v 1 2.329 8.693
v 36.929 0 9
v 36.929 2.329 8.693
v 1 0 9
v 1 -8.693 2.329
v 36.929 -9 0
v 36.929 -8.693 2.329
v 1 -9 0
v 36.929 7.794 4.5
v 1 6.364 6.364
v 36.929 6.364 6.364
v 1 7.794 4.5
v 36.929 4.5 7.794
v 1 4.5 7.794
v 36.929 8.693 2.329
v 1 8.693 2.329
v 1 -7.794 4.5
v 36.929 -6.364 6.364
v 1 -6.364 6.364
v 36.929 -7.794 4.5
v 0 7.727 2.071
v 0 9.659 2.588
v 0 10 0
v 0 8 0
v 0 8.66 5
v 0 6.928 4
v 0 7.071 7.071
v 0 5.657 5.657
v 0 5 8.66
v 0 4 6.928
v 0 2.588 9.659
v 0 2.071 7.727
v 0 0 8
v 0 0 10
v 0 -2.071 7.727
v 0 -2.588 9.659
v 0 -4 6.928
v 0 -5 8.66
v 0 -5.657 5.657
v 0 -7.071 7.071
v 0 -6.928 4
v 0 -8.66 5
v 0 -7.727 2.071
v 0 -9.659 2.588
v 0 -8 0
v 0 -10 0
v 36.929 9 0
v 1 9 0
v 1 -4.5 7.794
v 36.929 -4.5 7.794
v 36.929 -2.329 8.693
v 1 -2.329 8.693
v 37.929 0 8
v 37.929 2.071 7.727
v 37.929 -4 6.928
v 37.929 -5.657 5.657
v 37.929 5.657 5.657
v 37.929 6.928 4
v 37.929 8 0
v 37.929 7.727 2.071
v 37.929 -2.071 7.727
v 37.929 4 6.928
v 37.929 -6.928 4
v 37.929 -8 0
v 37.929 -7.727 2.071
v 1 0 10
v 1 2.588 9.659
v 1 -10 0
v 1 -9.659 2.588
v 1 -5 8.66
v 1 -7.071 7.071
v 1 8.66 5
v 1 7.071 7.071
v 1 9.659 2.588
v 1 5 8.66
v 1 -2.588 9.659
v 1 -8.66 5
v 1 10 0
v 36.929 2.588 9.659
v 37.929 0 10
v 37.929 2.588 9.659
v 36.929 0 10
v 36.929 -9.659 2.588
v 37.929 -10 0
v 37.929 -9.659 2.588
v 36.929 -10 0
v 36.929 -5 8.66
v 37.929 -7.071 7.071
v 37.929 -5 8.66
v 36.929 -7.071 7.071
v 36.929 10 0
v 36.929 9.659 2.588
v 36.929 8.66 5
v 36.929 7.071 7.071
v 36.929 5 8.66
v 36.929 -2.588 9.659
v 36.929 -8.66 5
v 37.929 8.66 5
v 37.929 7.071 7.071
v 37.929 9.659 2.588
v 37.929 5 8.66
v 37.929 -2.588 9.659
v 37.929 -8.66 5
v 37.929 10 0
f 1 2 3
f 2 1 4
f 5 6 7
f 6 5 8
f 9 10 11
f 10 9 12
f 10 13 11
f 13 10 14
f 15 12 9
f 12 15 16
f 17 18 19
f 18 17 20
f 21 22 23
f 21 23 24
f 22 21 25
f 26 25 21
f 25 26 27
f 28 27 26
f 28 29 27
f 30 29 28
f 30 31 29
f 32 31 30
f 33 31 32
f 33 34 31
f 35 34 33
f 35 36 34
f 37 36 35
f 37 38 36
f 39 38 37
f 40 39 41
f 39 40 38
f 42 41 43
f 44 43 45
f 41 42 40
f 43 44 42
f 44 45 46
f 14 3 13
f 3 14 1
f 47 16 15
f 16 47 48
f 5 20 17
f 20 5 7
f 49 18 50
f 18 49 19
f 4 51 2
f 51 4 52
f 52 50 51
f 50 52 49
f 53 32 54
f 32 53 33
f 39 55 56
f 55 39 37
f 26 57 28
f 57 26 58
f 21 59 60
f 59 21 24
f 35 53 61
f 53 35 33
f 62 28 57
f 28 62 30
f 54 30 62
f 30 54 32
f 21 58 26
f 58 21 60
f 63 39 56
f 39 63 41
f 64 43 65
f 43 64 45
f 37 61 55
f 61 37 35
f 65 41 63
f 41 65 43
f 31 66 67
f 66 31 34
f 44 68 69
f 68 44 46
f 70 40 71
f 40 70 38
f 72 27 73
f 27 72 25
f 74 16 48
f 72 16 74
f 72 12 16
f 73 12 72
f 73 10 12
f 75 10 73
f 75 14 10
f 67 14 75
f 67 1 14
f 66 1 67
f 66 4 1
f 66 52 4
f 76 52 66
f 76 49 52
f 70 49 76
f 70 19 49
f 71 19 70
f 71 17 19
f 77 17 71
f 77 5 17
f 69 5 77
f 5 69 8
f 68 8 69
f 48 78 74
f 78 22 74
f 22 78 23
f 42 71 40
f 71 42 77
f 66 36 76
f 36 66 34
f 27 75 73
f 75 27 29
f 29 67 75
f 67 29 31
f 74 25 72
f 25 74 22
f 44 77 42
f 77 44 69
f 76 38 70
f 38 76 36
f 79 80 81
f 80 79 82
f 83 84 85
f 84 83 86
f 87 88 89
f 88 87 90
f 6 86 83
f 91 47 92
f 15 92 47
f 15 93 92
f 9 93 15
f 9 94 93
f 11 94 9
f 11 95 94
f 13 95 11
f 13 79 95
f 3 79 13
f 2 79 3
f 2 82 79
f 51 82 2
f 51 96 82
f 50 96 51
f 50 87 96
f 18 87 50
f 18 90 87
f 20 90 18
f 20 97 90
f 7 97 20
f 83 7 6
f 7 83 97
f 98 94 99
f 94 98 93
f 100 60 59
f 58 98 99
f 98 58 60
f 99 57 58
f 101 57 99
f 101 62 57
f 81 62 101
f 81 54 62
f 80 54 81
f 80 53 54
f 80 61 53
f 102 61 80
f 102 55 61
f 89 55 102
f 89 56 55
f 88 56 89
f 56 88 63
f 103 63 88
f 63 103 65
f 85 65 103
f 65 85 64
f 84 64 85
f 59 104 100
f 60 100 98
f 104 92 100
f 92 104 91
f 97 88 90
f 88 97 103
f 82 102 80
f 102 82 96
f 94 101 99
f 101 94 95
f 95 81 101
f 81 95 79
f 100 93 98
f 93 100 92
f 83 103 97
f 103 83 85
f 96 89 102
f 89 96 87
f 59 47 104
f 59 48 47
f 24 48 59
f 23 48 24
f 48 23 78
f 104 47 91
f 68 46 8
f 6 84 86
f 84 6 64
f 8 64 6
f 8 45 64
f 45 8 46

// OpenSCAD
// file: ../build_environments.scad
// build_environments.scad: modules to build level sections
//

module pool(diameter=10.0, wall_height=2.0, step_width=3.0, connections=[])
{
    difference() {
        union() {
        difference() {
            cylinder(h=0.5,r1=diameter+step_width,r2=diameter+step_width,$fn=48);
            translate([0,0,-0.1])
                cylinder(h=0.7,r1=diameter,r2=diameter,$fn=48);
        }
        difference() {
            cylinder(h=wall_height,r1=diameter+step_width+1.0,r2=diameter+step_width+1.0,$fn=48);
            translate([0,0,-0.1])
                cylinder(h=wall_height+0.2,r1=diameter+step_width,r2=diameter+step_width,$fn=48);
        }
        }
    
        for (c = connections)
        {
            rotate([0,90,0]) {
                angle = atan2(c[1],c[0]);
                rotate([-angle,0,0]) {
                    cylinder(h=diameter+5.0,r1=c[2],r2=c[2],$fn=48);
                }
            }
        }
    }
}

module straight(length=10.0, width=2.0, dy1=0.0, dy2=0.0, dz=0.0)
{
    dims = [0, 0, 0, 0, 0, (dz/length)];
    matrix = [
        [ 1, dims[0], dims[1], 0 ],
        [ dims[2], 1, dims[4], 0 ],
        [ dims[5], dims[3], 1, 0 ],
        [ 0, 0, 0, 1 ]
    ];
    multmatrix(matrix)
    difference() {
        translate([dy1,0,0])
        union() {
            rotate([0,90,0]) {
                difference() {
                    cylinder(h=(length-dy1-dy2),r1=width+1.0,r2=width+1.0,$fn=24);
                    translate([0,0,-0.1])
                        cylinder(h=(length-dy1-dy2+0.2),r1=width,r2=width,$fn=24);
                }
                difference() {
                    cylinder(h=1.0,r1=width+2.0,r2=width+2.0,$fn=24);
                    translate([0,0,-0.1])
                        cylinder(h=1.2,r1=width,r2=width,$fn=24);
                }
                translate([0,0,(length-dy1-dy2)-1.0]) {
                    difference() {
                        cylinder(h=1.0,r1=width+2.0,r2=width+2.0,$fn=24);
                        translate([0,0,-0.1])
                            cylinder(h=1.2,r1=width,r2=width,$fn=24);
                    }
                }
            }
        }
        translate([0,0,-(2*width+4.0)/2])
            cube([3*length,3*length,2*width+4.0],center=true);
    }
}

module curve(p0=[0,0], center=[0,0], dir=1, angle=0.0, width=2.0)
{
    radius = sqrt((p0[0]-center[0])*(p0[0]-center[0]) + (p0[1]-center[1])*(p0[1]-center[1]));
    if (dir == 0) {
        difference() {
            rotate([0,0,-90])
            difference() {
                rotate_extrude(angle = angle, convexity = 10, $fn=32)
                    translate([radius, 0, 0])
                        circle(r = width+1.0,$fn=24);
                rotate([0,0,-1.0])
                    rotate_extrude(angle = angle+2.0, convexity = 10, $fn=32)
                        translate([radius, 0, 0])
                            circle(r = width,$fn=24);
            }
            translate([0,0,-(2*width+4.0)/2])
                cube([5*radius,5*radius,2*width+4.0],center=true);
        }
    }
    else {
        difference() {
            rotate([0,0,90])
            difference() {
                rotate_extrude(angle = -angle, convexity = 10, $fn=32)
                    translate([radius, 0, 0])
                        circle(r = width+1.0,$fn=24);
                rotate([0,0,1.0])
                    rotate_extrude(angle = -angle-2.0, convexity = 10, $fn=32)
                        translate([radius, 0, 0])
                            circle(r = width,$fn=24);
            }
            translate([0,0,-(2*width+4.0)/2])
                cube([5*radius,5*radius,2*width+4.0],center=true);
        }
    }

}

// test pool
//pool(diameter=12.0000, wall_height=3.0000, step_width=3.0000, connections=[[0.0000,-26.0000,2.0000], [23.6074,0.0000,2.0000]]);

// test straight, slope
//straight(length=26.0000, width=2.0000, dy1=11.8322, dy2=6.7082, dz=0.0000);
//straight(length=29.1549, width=12.0000, dy1=0.0000, dy2=0.0000, dz=-15.0000);

// test curve
//curve(p0=[23.6074, 0.0000], center=[23.6074, 5.0000], dir=0, angle=60.1011, width=2.0000);
//curve(p0=[33.6426, 12.4219], center=[37.9771, 9.9295], dir=1, angle=120.4627, width=2.0000);
// main file
use <../build_environments.scad>;
straight(length=37.9288, width=8.0000, dy1=0.0000, dy2=0.0000, dz=0.0000);
